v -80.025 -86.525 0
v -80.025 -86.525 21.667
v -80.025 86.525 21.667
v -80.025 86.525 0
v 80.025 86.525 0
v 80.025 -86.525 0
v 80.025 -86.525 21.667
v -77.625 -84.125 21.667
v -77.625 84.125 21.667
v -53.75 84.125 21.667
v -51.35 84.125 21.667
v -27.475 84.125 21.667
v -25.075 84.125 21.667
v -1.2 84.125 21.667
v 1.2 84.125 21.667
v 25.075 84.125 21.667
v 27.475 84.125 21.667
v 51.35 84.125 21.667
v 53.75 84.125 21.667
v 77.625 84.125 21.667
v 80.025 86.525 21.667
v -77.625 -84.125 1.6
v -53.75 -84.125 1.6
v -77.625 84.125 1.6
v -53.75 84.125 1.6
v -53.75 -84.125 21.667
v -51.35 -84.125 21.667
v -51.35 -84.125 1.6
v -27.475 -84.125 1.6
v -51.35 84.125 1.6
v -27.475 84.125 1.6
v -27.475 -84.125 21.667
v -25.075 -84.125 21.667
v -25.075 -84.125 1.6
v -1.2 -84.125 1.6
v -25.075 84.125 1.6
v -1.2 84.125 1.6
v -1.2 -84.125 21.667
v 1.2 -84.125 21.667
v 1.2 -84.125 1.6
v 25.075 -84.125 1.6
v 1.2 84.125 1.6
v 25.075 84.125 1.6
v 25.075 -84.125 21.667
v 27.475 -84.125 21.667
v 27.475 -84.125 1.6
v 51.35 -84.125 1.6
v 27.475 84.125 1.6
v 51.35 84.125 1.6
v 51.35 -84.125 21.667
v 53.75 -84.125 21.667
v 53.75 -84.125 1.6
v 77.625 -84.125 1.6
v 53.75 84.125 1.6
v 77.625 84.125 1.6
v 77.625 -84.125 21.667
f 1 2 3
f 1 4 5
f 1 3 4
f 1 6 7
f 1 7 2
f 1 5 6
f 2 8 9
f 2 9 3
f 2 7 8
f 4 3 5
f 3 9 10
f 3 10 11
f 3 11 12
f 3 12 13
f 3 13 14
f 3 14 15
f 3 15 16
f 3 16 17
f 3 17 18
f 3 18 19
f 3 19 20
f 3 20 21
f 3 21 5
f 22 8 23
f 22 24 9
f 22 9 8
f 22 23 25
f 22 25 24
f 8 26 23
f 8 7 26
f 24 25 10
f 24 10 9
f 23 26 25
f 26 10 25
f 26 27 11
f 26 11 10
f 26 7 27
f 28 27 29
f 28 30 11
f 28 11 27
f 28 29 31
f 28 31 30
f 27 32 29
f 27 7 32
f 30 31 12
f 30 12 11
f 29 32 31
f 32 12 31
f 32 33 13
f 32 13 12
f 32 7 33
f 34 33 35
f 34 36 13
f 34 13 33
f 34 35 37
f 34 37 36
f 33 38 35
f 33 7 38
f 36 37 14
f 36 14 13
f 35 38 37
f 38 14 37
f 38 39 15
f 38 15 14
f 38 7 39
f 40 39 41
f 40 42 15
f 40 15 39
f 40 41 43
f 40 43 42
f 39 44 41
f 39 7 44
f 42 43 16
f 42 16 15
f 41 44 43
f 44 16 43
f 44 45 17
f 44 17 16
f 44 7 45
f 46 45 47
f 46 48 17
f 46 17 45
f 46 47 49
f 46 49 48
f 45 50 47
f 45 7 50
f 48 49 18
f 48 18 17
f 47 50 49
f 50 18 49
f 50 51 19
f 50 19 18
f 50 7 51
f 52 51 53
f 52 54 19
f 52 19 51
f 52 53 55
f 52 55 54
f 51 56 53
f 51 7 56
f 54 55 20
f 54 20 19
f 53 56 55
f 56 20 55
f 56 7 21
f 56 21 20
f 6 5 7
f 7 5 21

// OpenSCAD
// Start: lazy_union
default_5_default_5();
// End: lazy_union

// Modules.

// 'PartMaterial undef-default - default 5.0'
module default_5_default_5() {
  // 'None : _combine_solids_and_holes'
  union() {
    // '_combine_solids_and_holes'
    difference() {
      // 'B6x1 : _combine_solids_and_holes'
      union() {
        // 'box'
        multmatrix(m=[[1.0, 0.0, 0.0, -80.025], [0.0, 1.0, 0.0, -86.525], [0.0, 0.0, 1.0, 0.0], [0.0, 0.0, 0.0, 1.0]]) {
          // 'box : _combine_solids_and_holes'
          union() {
            // 'box'
            cube(size=[160.05, 173.05, 21.666666666666668]);
          }
        }
      }
      // 'B6x1'
      multmatrix(m=[[1.0, 0.0, 0.0, -77.625], [0.0, 1.0, 0.0, -84.125], [0.0, 0.0, 1.0, 1.6], [0.0, 0.0, 0.0, 1.0]]) {
        // "('hole', 0, 0) : _combine_solids_and_holes"
        union() {
          // ('hole', 0, 0)
          cube(size=[23.875000000000004, 168.25, 20.076666666666668]);
        }
      }
      // 'B6x1'
      multmatrix(m=[[1.0, 0.0, 0.0, -51.35000000000001], [0.0, 1.0, 0.0, -84.125], [0.0, 0.0, 1.0, 1.6], [0.0, 0.0, 0.0, 1.0]]) {
        // "('hole', 1, 0) : _combine_solids_and_holes"
        union() {
          // ('hole', 1, 0)
          cube(size=[23.875000000000004, 168.25, 20.076666666666668]);
        }
      }
      // 'B6x1'
      multmatrix(m=[[1.0, 0.0, 0.0, -25.075000000000003], [0.0, 1.0, 0.0, -84.125], [0.0, 0.0, 1.0, 1.6], [0.0, 0.0, 0.0, 1.0]]) {
        // "('hole', 2, 0) : _combine_solids_and_holes"
        union() {
          // ('hole', 2, 0)
          cube(size=[23.875000000000004, 168.25, 20.076666666666668]);
        }
      }
      // 'B6x1'
      multmatrix(m=[[1.0, 0.0, 0.0, 1.2000000000000028], [0.0, 1.0, 0.0, -84.125], [0.0, 0.0, 1.0, 1.6], [0.0, 0.0, 0.0, 1.0]]) {
        // "('hole', 3, 0) : _combine_solids_and_holes"
        union() {
          // ('hole', 3, 0)
          cube(size=[23.875000000000004, 168.25, 20.076666666666668]);
        }
      }
      // 'B6x1'
      multmatrix(m=[[1.0, 0.0, 0.0, 27.47500000000001], [0.0, 1.0, 0.0, -84.125], [0.0, 0.0, 1.0, 1.6], [0.0, 0.0, 0.0, 1.0]]) {
        // "('hole', 4, 0) : _combine_solids_and_holes"
        union() {
          // ('hole', 4, 0)
          cube(size=[23.875000000000004, 168.25, 20.076666666666668]);
        }
      }
      // 'B6x1'
      multmatrix(m=[[1.0, 0.0, 0.0, 53.75], [0.0, 1.0, 0.0, -84.125], [0.0, 0.0, 1.0, 1.6], [0.0, 0.0, 0.0, 1.0]]) {
        // "('hole', 5, 0) : _combine_solids_and_holes"
        union() {
          // ('hole', 5, 0)
          cube(size=[23.875000000000004, 168.25, 20.076666666666668]);
        }
      }
    }
  }
} // end module default_5_default_5
